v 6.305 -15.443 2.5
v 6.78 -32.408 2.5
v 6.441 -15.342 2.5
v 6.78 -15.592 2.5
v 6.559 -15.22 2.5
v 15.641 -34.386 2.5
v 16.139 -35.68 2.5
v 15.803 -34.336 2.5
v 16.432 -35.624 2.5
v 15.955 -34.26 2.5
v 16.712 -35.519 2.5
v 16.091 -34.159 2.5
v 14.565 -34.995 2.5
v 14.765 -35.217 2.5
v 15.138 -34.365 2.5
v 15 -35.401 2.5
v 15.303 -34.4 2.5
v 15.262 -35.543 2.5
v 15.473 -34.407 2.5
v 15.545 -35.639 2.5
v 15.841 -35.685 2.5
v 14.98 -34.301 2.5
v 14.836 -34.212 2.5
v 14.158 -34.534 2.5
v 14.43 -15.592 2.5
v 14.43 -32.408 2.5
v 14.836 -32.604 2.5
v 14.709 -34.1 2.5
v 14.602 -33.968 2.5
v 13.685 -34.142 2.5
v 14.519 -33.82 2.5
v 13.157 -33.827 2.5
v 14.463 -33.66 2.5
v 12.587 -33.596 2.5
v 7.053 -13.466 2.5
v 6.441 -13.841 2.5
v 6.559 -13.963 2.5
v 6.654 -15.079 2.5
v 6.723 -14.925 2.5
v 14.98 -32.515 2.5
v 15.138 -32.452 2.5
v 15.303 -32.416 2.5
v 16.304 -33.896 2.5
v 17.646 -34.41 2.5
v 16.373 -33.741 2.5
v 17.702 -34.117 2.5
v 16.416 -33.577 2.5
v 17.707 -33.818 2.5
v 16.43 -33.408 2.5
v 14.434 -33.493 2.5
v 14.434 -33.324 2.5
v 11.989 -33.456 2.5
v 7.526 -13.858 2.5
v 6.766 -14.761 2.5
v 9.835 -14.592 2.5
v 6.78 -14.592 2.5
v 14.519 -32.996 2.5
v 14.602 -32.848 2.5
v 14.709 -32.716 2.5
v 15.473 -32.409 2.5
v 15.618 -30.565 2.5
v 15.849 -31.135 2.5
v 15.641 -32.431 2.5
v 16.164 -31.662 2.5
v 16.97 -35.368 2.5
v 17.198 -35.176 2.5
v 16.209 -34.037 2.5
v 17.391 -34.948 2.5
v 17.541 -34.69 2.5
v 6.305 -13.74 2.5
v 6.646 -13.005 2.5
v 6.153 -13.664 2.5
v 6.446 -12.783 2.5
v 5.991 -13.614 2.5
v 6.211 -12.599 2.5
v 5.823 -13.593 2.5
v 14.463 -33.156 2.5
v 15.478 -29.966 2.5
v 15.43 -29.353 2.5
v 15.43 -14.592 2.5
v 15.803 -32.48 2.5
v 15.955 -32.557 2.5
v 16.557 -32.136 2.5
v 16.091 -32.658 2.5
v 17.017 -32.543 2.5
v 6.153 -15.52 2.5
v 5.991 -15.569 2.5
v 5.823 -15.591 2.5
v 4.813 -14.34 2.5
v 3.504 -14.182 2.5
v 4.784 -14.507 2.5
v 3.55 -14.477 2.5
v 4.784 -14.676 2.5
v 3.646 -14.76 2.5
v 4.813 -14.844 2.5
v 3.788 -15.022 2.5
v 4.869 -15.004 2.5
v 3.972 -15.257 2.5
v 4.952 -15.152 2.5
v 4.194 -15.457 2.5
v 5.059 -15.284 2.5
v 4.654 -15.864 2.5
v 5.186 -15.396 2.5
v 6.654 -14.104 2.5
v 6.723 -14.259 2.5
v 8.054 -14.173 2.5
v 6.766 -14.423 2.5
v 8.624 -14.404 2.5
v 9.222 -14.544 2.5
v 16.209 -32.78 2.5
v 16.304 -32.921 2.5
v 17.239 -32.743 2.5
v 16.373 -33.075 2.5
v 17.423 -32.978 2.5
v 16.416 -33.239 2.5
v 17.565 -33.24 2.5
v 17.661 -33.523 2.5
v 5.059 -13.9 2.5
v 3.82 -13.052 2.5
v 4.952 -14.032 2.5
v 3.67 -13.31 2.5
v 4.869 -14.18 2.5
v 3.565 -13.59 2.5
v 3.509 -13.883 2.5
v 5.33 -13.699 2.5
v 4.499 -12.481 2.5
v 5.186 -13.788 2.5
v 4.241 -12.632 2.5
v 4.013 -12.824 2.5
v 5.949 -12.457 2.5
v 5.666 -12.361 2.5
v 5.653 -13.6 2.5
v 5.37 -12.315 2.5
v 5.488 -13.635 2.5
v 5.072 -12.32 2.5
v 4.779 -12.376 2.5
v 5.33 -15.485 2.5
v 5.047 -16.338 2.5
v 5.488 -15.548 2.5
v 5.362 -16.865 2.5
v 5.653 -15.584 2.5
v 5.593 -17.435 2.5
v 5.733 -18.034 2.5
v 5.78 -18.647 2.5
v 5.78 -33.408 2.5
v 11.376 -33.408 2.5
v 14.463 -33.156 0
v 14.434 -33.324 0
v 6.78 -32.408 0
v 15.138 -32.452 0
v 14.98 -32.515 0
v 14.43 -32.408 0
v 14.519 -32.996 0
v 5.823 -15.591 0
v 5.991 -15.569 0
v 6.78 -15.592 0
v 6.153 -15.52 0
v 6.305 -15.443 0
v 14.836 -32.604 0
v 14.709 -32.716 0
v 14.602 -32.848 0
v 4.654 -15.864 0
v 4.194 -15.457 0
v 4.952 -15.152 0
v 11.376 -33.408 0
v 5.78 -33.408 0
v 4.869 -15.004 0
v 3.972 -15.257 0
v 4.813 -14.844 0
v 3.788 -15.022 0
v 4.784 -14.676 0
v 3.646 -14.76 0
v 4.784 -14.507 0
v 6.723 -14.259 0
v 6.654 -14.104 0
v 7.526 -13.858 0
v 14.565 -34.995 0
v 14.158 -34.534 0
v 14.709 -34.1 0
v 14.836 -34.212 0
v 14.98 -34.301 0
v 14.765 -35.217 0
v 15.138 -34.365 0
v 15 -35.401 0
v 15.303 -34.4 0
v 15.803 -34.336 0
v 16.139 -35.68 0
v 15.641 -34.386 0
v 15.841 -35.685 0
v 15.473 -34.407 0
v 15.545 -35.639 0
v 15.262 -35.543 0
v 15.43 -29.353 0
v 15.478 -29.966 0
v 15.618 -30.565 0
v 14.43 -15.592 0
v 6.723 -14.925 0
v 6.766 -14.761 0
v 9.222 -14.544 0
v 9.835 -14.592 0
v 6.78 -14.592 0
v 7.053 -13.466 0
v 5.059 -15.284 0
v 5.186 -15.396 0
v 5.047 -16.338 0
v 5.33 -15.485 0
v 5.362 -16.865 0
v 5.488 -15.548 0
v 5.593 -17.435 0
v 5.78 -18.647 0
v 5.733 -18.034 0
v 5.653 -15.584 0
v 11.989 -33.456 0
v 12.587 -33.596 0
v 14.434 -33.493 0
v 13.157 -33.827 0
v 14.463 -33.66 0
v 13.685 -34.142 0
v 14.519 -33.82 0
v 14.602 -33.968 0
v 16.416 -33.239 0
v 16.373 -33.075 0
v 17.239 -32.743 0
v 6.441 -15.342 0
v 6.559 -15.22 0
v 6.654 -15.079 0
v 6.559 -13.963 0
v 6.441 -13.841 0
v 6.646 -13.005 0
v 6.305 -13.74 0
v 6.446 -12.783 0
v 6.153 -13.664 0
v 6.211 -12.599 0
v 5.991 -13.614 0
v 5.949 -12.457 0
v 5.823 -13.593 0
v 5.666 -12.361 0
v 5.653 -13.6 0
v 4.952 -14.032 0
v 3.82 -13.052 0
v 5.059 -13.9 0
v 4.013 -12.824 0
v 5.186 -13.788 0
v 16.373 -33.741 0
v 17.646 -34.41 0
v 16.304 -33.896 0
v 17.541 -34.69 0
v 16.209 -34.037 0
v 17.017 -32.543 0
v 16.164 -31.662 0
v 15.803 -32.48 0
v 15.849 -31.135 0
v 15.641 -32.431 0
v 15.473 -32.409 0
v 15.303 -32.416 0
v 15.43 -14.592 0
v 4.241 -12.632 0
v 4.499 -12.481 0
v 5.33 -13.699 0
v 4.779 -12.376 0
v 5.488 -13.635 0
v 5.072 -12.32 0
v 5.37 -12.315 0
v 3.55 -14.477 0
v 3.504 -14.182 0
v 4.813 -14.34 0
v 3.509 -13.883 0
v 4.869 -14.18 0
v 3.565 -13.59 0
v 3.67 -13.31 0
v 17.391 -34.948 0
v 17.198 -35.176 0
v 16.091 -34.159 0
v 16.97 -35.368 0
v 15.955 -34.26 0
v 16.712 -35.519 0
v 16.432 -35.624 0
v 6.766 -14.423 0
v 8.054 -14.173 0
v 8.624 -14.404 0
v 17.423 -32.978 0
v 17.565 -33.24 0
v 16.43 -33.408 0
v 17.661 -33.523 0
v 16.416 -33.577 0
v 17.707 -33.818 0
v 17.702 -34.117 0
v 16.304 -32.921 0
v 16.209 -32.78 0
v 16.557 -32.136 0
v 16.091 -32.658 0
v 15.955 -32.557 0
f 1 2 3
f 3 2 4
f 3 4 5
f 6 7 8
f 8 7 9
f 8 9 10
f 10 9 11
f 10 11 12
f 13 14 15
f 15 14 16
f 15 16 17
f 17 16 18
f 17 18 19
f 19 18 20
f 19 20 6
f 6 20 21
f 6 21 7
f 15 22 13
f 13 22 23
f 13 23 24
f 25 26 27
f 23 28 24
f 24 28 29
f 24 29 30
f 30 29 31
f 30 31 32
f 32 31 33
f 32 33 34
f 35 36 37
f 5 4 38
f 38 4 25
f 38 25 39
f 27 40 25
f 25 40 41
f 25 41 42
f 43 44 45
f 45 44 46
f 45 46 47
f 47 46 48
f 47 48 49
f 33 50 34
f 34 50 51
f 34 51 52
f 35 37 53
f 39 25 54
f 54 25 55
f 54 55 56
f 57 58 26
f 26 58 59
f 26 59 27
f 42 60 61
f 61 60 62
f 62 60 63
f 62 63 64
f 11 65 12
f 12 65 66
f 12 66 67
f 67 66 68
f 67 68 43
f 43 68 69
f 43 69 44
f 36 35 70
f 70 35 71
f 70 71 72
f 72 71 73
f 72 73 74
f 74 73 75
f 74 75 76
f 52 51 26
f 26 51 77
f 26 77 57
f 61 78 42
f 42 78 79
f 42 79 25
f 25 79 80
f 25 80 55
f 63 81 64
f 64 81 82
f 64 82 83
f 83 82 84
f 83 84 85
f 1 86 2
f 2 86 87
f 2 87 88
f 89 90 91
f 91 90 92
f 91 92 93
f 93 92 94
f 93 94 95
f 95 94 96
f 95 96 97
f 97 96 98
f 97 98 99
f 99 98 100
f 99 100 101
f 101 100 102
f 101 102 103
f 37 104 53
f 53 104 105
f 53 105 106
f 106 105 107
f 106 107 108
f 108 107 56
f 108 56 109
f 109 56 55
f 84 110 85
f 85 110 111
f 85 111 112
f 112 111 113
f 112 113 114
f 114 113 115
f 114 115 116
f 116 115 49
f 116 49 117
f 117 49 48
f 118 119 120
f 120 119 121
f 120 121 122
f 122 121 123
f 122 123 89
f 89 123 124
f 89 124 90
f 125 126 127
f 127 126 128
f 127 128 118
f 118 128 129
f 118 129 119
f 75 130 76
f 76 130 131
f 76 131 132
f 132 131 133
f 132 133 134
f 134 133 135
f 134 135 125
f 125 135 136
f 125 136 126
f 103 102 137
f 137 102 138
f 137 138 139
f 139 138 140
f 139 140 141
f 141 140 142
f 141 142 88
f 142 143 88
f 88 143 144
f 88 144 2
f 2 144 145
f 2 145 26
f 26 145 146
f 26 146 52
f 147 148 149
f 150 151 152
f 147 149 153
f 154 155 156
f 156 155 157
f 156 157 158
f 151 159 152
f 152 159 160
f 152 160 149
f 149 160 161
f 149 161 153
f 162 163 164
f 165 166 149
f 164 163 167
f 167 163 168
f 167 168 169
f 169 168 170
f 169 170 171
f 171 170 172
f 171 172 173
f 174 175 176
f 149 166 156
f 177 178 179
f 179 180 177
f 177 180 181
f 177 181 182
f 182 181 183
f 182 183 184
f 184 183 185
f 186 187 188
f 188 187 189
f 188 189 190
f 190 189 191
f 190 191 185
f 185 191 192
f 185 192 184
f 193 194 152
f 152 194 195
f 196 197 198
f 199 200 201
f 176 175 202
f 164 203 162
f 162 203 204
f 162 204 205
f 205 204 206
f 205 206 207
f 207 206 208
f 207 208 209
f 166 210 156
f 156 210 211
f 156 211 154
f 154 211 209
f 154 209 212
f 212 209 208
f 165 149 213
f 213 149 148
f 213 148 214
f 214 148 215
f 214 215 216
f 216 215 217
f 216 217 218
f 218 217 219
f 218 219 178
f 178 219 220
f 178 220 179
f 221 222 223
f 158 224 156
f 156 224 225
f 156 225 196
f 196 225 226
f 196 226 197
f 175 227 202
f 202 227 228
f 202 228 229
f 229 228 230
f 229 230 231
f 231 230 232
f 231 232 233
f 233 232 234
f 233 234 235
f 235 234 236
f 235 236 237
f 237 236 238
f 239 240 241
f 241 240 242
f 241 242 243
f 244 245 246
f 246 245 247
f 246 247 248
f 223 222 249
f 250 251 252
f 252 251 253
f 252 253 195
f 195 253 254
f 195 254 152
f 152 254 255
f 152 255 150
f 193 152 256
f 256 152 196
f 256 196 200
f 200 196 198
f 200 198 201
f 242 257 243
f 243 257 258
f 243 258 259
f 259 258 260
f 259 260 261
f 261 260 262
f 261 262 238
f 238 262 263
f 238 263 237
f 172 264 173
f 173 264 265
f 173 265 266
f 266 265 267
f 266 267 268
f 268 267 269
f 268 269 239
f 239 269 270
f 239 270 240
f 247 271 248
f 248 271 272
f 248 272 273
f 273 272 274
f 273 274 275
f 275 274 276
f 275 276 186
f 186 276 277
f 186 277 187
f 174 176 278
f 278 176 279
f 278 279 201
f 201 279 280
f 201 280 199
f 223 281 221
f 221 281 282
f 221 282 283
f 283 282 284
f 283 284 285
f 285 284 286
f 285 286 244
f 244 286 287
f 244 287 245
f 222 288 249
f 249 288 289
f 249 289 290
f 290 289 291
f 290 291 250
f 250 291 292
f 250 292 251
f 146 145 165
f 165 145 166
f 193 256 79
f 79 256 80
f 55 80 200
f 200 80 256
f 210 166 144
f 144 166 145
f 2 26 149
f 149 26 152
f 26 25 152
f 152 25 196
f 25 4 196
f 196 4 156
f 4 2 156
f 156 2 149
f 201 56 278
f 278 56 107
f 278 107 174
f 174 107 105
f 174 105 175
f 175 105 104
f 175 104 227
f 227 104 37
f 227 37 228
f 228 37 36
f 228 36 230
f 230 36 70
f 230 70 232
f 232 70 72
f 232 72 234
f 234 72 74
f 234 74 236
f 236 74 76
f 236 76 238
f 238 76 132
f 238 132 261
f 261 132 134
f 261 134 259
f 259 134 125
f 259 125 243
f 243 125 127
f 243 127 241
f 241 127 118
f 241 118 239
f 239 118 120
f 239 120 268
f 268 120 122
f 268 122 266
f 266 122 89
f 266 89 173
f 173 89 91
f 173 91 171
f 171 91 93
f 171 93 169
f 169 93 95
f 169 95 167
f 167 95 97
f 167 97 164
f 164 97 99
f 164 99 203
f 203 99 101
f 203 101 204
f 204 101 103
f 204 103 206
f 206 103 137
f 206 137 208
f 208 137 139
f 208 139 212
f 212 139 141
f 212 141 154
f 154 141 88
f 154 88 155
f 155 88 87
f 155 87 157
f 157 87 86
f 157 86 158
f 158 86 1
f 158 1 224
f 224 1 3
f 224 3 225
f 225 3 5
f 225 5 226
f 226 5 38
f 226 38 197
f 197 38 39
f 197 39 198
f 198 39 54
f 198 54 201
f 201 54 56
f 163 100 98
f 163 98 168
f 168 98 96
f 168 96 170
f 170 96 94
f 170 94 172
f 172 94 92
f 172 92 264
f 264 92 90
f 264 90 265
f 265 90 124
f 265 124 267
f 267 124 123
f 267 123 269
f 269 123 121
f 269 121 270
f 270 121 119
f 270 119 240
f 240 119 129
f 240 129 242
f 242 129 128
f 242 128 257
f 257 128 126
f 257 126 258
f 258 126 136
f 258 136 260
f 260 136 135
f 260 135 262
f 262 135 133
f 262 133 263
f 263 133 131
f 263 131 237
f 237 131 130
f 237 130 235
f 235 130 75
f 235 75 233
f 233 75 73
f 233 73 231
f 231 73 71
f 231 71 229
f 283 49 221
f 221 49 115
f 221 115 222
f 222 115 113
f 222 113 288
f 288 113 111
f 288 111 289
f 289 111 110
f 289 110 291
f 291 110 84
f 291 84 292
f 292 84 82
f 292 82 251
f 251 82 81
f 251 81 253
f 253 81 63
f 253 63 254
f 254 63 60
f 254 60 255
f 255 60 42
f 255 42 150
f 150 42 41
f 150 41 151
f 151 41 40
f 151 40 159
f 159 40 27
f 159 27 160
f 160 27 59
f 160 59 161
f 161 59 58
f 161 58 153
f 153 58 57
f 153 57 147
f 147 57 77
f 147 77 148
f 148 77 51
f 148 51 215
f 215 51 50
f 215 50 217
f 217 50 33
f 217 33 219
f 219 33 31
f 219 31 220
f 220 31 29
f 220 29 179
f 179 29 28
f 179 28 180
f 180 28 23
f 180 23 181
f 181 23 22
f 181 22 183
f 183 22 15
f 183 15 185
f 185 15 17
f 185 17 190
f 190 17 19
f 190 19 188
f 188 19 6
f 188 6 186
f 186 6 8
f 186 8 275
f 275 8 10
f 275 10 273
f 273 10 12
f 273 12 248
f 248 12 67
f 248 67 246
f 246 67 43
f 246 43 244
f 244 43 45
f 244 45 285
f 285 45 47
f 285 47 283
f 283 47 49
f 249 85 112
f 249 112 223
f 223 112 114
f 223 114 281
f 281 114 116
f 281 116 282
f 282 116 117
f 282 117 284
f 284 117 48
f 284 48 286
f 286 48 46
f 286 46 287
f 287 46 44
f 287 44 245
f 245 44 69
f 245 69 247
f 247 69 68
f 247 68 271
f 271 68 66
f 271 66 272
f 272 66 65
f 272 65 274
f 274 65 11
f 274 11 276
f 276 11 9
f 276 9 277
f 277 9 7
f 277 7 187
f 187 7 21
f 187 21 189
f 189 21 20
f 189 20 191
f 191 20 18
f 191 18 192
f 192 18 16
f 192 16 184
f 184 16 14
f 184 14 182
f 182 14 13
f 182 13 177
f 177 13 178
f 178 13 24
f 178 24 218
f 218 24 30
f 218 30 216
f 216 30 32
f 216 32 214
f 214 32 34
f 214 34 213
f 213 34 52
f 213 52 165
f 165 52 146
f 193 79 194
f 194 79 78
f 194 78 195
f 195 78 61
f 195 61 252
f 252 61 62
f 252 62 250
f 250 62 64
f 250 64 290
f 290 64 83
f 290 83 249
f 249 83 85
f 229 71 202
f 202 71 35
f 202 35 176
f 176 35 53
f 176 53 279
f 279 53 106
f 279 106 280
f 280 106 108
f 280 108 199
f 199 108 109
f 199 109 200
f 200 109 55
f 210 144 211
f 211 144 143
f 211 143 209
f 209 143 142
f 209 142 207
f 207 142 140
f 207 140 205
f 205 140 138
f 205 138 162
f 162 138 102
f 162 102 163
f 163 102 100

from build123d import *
from build123d.topology import SkipClean

# Parameters (mm, degrees)
SKETCH3_W           = 9.65
SKETCH3_H           = 18.81667
SKETCH3_W_2         = 7.65
SKETCH3_H_2         = 16.81667
EXTRUDE_THIN1_DEPTH = 2.5
BOSS_EXTRUDE2_DEPTH = 2.5
CUT_EXTRUDE1_DEPTH  = 2.5
FILLET1_R           = 4


with BuildPart() as part:
    # Sketch3 → Extrude-Thin1 (new body)
    with BuildSketch(Plane.XY):
        with Locations((10.605490461, -24)):
            Rectangle(SKETCH3_W, SKETCH3_H)
        with Locations((10.605490461, -24)):
            Rectangle(SKETCH3_W_2, SKETCH3_H_2, mode=Mode.SUBTRACT)
    extrude(amount=EXTRUDE_THIN1_DEPTH)

    # Sketch4 → Boss-Extrude2 (add)
    with BuildSketch(Plane.XY.offset(2.5)):
        with BuildLine():
            ThreePointArc((5.780490461, -15.591665), (5.07338368, -13.884558219), (6.780490461, -14.591665))
            Line((6.780490461, -14.591665), (6.917868383, -14.591665))
            ThreePointArc((6.917868383, -14.591665), (6.979465006, -14.329673307), (7.000160375, -14.061334914))
            ThreePointArc((7.000160375, -14.061334914), (3.837613447, -13.02827578), (5.780490461, -15.729042922))
            Line((5.780490461, -15.729042922), (5.780490461, -15.591665))
        make_face()
        with BuildLine():
            ThreePointArc((17.710820547, -33.938665086), (16.993879681, -32.526118157), (15.430490461, -32.270957078))
            Line((15.430490461, -32.270957078), (15.430490461, -32.408335))
            ThreePointArc((15.430490461, -32.408335), (16.137597242, -32.701228219), (16.430490461, -33.408335))
            ThreePointArc((16.430490461, -33.408335), (15.430490461, -34.408335), (14.430490461, -33.408335))
            Line((14.430490461, -33.408335), (14.293112539, -33.408335))
            ThreePointArc((14.293112539, -33.408335), (15.692482154, -35.667969717), (17.710820547, -33.938665086))
        make_face()
    extrude(amount=-BOSS_EXTRUDE2_DEPTH)

    # Sketch4<2> → Cut-Extrude1 (cut)
    with SkipClean():  # the faces are left unmerged after this step: merging them gives an invalid solid
        with BuildSketch(Plane.XY.offset(2.5)):
            with BuildLine():
                Line((5.780490461, -14.591665), (6.780490461, -14.591665))
                ThreePointArc((6.780490461, -14.591665), (5.07338368, -13.884558219), (5.780490461, -15.591665))
                Line((5.780490461, -15.591665), (5.780490461, -14.591665))
            make_face()
            with BuildLine():
                ThreePointArc((6.487597245, -15.298771778), (6.704369994, -14.97434843), (6.780490461, -14.591665))
                Line((6.780490461, -14.591665), (5.780490461, -14.591665))
                Line((5.780490461, -14.591665), (5.780490461, -15.591665))
                ThreePointArc((5.780490461, -15.591665), (6.163173895, -15.515544532), (6.487597245, -15.298771778))
            make_face()
            with BuildLine():
                ThreePointArc((15.430490461, -32.408335), (15.047807029, -32.484455467), (14.72338368, -32.701228219))
                ThreePointArc((14.72338368, -32.701228219), (14.506610928, -33.025651568), (14.430490461, -33.408335))
                Line((14.430490461, -33.408335), (15.430490461, -33.408335))
                Line((15.430490461, -33.408335), (15.430490461, -32.408335))
            make_face()
            with BuildLine():
                ThreePointArc((16.430490461, -33.408335), (16.137597242, -32.701228219), (15.430490461, -32.408335))
                Line((15.430490461, -32.408335), (15.430490461, -33.408335))
                Line((15.430490461, -33.408335), (14.430490461, -33.408335))
                ThreePointArc((14.430490461, -33.408335), (15.430490461, -34.408335), (16.430490461, -33.408335))
            make_face()
        extrude(amount=-CUT_EXTRUDE1_DEPTH, mode=Mode.SUBTRACT)

    # Fillet1
    fillet1_edges = [part.edges().sort_by_distance(p)[0] for p in [
        (6.917868383, -14.591665, 1.25),
        (5.780490461, -15.729042922, 1.25),
        (14.293112539, -33.408335, 1.25),
        (15.430490461, -32.270957078, 1.25),
    ]]
    fillet(fillet1_edges, radius=FILLET1_R)


solid = part.part
